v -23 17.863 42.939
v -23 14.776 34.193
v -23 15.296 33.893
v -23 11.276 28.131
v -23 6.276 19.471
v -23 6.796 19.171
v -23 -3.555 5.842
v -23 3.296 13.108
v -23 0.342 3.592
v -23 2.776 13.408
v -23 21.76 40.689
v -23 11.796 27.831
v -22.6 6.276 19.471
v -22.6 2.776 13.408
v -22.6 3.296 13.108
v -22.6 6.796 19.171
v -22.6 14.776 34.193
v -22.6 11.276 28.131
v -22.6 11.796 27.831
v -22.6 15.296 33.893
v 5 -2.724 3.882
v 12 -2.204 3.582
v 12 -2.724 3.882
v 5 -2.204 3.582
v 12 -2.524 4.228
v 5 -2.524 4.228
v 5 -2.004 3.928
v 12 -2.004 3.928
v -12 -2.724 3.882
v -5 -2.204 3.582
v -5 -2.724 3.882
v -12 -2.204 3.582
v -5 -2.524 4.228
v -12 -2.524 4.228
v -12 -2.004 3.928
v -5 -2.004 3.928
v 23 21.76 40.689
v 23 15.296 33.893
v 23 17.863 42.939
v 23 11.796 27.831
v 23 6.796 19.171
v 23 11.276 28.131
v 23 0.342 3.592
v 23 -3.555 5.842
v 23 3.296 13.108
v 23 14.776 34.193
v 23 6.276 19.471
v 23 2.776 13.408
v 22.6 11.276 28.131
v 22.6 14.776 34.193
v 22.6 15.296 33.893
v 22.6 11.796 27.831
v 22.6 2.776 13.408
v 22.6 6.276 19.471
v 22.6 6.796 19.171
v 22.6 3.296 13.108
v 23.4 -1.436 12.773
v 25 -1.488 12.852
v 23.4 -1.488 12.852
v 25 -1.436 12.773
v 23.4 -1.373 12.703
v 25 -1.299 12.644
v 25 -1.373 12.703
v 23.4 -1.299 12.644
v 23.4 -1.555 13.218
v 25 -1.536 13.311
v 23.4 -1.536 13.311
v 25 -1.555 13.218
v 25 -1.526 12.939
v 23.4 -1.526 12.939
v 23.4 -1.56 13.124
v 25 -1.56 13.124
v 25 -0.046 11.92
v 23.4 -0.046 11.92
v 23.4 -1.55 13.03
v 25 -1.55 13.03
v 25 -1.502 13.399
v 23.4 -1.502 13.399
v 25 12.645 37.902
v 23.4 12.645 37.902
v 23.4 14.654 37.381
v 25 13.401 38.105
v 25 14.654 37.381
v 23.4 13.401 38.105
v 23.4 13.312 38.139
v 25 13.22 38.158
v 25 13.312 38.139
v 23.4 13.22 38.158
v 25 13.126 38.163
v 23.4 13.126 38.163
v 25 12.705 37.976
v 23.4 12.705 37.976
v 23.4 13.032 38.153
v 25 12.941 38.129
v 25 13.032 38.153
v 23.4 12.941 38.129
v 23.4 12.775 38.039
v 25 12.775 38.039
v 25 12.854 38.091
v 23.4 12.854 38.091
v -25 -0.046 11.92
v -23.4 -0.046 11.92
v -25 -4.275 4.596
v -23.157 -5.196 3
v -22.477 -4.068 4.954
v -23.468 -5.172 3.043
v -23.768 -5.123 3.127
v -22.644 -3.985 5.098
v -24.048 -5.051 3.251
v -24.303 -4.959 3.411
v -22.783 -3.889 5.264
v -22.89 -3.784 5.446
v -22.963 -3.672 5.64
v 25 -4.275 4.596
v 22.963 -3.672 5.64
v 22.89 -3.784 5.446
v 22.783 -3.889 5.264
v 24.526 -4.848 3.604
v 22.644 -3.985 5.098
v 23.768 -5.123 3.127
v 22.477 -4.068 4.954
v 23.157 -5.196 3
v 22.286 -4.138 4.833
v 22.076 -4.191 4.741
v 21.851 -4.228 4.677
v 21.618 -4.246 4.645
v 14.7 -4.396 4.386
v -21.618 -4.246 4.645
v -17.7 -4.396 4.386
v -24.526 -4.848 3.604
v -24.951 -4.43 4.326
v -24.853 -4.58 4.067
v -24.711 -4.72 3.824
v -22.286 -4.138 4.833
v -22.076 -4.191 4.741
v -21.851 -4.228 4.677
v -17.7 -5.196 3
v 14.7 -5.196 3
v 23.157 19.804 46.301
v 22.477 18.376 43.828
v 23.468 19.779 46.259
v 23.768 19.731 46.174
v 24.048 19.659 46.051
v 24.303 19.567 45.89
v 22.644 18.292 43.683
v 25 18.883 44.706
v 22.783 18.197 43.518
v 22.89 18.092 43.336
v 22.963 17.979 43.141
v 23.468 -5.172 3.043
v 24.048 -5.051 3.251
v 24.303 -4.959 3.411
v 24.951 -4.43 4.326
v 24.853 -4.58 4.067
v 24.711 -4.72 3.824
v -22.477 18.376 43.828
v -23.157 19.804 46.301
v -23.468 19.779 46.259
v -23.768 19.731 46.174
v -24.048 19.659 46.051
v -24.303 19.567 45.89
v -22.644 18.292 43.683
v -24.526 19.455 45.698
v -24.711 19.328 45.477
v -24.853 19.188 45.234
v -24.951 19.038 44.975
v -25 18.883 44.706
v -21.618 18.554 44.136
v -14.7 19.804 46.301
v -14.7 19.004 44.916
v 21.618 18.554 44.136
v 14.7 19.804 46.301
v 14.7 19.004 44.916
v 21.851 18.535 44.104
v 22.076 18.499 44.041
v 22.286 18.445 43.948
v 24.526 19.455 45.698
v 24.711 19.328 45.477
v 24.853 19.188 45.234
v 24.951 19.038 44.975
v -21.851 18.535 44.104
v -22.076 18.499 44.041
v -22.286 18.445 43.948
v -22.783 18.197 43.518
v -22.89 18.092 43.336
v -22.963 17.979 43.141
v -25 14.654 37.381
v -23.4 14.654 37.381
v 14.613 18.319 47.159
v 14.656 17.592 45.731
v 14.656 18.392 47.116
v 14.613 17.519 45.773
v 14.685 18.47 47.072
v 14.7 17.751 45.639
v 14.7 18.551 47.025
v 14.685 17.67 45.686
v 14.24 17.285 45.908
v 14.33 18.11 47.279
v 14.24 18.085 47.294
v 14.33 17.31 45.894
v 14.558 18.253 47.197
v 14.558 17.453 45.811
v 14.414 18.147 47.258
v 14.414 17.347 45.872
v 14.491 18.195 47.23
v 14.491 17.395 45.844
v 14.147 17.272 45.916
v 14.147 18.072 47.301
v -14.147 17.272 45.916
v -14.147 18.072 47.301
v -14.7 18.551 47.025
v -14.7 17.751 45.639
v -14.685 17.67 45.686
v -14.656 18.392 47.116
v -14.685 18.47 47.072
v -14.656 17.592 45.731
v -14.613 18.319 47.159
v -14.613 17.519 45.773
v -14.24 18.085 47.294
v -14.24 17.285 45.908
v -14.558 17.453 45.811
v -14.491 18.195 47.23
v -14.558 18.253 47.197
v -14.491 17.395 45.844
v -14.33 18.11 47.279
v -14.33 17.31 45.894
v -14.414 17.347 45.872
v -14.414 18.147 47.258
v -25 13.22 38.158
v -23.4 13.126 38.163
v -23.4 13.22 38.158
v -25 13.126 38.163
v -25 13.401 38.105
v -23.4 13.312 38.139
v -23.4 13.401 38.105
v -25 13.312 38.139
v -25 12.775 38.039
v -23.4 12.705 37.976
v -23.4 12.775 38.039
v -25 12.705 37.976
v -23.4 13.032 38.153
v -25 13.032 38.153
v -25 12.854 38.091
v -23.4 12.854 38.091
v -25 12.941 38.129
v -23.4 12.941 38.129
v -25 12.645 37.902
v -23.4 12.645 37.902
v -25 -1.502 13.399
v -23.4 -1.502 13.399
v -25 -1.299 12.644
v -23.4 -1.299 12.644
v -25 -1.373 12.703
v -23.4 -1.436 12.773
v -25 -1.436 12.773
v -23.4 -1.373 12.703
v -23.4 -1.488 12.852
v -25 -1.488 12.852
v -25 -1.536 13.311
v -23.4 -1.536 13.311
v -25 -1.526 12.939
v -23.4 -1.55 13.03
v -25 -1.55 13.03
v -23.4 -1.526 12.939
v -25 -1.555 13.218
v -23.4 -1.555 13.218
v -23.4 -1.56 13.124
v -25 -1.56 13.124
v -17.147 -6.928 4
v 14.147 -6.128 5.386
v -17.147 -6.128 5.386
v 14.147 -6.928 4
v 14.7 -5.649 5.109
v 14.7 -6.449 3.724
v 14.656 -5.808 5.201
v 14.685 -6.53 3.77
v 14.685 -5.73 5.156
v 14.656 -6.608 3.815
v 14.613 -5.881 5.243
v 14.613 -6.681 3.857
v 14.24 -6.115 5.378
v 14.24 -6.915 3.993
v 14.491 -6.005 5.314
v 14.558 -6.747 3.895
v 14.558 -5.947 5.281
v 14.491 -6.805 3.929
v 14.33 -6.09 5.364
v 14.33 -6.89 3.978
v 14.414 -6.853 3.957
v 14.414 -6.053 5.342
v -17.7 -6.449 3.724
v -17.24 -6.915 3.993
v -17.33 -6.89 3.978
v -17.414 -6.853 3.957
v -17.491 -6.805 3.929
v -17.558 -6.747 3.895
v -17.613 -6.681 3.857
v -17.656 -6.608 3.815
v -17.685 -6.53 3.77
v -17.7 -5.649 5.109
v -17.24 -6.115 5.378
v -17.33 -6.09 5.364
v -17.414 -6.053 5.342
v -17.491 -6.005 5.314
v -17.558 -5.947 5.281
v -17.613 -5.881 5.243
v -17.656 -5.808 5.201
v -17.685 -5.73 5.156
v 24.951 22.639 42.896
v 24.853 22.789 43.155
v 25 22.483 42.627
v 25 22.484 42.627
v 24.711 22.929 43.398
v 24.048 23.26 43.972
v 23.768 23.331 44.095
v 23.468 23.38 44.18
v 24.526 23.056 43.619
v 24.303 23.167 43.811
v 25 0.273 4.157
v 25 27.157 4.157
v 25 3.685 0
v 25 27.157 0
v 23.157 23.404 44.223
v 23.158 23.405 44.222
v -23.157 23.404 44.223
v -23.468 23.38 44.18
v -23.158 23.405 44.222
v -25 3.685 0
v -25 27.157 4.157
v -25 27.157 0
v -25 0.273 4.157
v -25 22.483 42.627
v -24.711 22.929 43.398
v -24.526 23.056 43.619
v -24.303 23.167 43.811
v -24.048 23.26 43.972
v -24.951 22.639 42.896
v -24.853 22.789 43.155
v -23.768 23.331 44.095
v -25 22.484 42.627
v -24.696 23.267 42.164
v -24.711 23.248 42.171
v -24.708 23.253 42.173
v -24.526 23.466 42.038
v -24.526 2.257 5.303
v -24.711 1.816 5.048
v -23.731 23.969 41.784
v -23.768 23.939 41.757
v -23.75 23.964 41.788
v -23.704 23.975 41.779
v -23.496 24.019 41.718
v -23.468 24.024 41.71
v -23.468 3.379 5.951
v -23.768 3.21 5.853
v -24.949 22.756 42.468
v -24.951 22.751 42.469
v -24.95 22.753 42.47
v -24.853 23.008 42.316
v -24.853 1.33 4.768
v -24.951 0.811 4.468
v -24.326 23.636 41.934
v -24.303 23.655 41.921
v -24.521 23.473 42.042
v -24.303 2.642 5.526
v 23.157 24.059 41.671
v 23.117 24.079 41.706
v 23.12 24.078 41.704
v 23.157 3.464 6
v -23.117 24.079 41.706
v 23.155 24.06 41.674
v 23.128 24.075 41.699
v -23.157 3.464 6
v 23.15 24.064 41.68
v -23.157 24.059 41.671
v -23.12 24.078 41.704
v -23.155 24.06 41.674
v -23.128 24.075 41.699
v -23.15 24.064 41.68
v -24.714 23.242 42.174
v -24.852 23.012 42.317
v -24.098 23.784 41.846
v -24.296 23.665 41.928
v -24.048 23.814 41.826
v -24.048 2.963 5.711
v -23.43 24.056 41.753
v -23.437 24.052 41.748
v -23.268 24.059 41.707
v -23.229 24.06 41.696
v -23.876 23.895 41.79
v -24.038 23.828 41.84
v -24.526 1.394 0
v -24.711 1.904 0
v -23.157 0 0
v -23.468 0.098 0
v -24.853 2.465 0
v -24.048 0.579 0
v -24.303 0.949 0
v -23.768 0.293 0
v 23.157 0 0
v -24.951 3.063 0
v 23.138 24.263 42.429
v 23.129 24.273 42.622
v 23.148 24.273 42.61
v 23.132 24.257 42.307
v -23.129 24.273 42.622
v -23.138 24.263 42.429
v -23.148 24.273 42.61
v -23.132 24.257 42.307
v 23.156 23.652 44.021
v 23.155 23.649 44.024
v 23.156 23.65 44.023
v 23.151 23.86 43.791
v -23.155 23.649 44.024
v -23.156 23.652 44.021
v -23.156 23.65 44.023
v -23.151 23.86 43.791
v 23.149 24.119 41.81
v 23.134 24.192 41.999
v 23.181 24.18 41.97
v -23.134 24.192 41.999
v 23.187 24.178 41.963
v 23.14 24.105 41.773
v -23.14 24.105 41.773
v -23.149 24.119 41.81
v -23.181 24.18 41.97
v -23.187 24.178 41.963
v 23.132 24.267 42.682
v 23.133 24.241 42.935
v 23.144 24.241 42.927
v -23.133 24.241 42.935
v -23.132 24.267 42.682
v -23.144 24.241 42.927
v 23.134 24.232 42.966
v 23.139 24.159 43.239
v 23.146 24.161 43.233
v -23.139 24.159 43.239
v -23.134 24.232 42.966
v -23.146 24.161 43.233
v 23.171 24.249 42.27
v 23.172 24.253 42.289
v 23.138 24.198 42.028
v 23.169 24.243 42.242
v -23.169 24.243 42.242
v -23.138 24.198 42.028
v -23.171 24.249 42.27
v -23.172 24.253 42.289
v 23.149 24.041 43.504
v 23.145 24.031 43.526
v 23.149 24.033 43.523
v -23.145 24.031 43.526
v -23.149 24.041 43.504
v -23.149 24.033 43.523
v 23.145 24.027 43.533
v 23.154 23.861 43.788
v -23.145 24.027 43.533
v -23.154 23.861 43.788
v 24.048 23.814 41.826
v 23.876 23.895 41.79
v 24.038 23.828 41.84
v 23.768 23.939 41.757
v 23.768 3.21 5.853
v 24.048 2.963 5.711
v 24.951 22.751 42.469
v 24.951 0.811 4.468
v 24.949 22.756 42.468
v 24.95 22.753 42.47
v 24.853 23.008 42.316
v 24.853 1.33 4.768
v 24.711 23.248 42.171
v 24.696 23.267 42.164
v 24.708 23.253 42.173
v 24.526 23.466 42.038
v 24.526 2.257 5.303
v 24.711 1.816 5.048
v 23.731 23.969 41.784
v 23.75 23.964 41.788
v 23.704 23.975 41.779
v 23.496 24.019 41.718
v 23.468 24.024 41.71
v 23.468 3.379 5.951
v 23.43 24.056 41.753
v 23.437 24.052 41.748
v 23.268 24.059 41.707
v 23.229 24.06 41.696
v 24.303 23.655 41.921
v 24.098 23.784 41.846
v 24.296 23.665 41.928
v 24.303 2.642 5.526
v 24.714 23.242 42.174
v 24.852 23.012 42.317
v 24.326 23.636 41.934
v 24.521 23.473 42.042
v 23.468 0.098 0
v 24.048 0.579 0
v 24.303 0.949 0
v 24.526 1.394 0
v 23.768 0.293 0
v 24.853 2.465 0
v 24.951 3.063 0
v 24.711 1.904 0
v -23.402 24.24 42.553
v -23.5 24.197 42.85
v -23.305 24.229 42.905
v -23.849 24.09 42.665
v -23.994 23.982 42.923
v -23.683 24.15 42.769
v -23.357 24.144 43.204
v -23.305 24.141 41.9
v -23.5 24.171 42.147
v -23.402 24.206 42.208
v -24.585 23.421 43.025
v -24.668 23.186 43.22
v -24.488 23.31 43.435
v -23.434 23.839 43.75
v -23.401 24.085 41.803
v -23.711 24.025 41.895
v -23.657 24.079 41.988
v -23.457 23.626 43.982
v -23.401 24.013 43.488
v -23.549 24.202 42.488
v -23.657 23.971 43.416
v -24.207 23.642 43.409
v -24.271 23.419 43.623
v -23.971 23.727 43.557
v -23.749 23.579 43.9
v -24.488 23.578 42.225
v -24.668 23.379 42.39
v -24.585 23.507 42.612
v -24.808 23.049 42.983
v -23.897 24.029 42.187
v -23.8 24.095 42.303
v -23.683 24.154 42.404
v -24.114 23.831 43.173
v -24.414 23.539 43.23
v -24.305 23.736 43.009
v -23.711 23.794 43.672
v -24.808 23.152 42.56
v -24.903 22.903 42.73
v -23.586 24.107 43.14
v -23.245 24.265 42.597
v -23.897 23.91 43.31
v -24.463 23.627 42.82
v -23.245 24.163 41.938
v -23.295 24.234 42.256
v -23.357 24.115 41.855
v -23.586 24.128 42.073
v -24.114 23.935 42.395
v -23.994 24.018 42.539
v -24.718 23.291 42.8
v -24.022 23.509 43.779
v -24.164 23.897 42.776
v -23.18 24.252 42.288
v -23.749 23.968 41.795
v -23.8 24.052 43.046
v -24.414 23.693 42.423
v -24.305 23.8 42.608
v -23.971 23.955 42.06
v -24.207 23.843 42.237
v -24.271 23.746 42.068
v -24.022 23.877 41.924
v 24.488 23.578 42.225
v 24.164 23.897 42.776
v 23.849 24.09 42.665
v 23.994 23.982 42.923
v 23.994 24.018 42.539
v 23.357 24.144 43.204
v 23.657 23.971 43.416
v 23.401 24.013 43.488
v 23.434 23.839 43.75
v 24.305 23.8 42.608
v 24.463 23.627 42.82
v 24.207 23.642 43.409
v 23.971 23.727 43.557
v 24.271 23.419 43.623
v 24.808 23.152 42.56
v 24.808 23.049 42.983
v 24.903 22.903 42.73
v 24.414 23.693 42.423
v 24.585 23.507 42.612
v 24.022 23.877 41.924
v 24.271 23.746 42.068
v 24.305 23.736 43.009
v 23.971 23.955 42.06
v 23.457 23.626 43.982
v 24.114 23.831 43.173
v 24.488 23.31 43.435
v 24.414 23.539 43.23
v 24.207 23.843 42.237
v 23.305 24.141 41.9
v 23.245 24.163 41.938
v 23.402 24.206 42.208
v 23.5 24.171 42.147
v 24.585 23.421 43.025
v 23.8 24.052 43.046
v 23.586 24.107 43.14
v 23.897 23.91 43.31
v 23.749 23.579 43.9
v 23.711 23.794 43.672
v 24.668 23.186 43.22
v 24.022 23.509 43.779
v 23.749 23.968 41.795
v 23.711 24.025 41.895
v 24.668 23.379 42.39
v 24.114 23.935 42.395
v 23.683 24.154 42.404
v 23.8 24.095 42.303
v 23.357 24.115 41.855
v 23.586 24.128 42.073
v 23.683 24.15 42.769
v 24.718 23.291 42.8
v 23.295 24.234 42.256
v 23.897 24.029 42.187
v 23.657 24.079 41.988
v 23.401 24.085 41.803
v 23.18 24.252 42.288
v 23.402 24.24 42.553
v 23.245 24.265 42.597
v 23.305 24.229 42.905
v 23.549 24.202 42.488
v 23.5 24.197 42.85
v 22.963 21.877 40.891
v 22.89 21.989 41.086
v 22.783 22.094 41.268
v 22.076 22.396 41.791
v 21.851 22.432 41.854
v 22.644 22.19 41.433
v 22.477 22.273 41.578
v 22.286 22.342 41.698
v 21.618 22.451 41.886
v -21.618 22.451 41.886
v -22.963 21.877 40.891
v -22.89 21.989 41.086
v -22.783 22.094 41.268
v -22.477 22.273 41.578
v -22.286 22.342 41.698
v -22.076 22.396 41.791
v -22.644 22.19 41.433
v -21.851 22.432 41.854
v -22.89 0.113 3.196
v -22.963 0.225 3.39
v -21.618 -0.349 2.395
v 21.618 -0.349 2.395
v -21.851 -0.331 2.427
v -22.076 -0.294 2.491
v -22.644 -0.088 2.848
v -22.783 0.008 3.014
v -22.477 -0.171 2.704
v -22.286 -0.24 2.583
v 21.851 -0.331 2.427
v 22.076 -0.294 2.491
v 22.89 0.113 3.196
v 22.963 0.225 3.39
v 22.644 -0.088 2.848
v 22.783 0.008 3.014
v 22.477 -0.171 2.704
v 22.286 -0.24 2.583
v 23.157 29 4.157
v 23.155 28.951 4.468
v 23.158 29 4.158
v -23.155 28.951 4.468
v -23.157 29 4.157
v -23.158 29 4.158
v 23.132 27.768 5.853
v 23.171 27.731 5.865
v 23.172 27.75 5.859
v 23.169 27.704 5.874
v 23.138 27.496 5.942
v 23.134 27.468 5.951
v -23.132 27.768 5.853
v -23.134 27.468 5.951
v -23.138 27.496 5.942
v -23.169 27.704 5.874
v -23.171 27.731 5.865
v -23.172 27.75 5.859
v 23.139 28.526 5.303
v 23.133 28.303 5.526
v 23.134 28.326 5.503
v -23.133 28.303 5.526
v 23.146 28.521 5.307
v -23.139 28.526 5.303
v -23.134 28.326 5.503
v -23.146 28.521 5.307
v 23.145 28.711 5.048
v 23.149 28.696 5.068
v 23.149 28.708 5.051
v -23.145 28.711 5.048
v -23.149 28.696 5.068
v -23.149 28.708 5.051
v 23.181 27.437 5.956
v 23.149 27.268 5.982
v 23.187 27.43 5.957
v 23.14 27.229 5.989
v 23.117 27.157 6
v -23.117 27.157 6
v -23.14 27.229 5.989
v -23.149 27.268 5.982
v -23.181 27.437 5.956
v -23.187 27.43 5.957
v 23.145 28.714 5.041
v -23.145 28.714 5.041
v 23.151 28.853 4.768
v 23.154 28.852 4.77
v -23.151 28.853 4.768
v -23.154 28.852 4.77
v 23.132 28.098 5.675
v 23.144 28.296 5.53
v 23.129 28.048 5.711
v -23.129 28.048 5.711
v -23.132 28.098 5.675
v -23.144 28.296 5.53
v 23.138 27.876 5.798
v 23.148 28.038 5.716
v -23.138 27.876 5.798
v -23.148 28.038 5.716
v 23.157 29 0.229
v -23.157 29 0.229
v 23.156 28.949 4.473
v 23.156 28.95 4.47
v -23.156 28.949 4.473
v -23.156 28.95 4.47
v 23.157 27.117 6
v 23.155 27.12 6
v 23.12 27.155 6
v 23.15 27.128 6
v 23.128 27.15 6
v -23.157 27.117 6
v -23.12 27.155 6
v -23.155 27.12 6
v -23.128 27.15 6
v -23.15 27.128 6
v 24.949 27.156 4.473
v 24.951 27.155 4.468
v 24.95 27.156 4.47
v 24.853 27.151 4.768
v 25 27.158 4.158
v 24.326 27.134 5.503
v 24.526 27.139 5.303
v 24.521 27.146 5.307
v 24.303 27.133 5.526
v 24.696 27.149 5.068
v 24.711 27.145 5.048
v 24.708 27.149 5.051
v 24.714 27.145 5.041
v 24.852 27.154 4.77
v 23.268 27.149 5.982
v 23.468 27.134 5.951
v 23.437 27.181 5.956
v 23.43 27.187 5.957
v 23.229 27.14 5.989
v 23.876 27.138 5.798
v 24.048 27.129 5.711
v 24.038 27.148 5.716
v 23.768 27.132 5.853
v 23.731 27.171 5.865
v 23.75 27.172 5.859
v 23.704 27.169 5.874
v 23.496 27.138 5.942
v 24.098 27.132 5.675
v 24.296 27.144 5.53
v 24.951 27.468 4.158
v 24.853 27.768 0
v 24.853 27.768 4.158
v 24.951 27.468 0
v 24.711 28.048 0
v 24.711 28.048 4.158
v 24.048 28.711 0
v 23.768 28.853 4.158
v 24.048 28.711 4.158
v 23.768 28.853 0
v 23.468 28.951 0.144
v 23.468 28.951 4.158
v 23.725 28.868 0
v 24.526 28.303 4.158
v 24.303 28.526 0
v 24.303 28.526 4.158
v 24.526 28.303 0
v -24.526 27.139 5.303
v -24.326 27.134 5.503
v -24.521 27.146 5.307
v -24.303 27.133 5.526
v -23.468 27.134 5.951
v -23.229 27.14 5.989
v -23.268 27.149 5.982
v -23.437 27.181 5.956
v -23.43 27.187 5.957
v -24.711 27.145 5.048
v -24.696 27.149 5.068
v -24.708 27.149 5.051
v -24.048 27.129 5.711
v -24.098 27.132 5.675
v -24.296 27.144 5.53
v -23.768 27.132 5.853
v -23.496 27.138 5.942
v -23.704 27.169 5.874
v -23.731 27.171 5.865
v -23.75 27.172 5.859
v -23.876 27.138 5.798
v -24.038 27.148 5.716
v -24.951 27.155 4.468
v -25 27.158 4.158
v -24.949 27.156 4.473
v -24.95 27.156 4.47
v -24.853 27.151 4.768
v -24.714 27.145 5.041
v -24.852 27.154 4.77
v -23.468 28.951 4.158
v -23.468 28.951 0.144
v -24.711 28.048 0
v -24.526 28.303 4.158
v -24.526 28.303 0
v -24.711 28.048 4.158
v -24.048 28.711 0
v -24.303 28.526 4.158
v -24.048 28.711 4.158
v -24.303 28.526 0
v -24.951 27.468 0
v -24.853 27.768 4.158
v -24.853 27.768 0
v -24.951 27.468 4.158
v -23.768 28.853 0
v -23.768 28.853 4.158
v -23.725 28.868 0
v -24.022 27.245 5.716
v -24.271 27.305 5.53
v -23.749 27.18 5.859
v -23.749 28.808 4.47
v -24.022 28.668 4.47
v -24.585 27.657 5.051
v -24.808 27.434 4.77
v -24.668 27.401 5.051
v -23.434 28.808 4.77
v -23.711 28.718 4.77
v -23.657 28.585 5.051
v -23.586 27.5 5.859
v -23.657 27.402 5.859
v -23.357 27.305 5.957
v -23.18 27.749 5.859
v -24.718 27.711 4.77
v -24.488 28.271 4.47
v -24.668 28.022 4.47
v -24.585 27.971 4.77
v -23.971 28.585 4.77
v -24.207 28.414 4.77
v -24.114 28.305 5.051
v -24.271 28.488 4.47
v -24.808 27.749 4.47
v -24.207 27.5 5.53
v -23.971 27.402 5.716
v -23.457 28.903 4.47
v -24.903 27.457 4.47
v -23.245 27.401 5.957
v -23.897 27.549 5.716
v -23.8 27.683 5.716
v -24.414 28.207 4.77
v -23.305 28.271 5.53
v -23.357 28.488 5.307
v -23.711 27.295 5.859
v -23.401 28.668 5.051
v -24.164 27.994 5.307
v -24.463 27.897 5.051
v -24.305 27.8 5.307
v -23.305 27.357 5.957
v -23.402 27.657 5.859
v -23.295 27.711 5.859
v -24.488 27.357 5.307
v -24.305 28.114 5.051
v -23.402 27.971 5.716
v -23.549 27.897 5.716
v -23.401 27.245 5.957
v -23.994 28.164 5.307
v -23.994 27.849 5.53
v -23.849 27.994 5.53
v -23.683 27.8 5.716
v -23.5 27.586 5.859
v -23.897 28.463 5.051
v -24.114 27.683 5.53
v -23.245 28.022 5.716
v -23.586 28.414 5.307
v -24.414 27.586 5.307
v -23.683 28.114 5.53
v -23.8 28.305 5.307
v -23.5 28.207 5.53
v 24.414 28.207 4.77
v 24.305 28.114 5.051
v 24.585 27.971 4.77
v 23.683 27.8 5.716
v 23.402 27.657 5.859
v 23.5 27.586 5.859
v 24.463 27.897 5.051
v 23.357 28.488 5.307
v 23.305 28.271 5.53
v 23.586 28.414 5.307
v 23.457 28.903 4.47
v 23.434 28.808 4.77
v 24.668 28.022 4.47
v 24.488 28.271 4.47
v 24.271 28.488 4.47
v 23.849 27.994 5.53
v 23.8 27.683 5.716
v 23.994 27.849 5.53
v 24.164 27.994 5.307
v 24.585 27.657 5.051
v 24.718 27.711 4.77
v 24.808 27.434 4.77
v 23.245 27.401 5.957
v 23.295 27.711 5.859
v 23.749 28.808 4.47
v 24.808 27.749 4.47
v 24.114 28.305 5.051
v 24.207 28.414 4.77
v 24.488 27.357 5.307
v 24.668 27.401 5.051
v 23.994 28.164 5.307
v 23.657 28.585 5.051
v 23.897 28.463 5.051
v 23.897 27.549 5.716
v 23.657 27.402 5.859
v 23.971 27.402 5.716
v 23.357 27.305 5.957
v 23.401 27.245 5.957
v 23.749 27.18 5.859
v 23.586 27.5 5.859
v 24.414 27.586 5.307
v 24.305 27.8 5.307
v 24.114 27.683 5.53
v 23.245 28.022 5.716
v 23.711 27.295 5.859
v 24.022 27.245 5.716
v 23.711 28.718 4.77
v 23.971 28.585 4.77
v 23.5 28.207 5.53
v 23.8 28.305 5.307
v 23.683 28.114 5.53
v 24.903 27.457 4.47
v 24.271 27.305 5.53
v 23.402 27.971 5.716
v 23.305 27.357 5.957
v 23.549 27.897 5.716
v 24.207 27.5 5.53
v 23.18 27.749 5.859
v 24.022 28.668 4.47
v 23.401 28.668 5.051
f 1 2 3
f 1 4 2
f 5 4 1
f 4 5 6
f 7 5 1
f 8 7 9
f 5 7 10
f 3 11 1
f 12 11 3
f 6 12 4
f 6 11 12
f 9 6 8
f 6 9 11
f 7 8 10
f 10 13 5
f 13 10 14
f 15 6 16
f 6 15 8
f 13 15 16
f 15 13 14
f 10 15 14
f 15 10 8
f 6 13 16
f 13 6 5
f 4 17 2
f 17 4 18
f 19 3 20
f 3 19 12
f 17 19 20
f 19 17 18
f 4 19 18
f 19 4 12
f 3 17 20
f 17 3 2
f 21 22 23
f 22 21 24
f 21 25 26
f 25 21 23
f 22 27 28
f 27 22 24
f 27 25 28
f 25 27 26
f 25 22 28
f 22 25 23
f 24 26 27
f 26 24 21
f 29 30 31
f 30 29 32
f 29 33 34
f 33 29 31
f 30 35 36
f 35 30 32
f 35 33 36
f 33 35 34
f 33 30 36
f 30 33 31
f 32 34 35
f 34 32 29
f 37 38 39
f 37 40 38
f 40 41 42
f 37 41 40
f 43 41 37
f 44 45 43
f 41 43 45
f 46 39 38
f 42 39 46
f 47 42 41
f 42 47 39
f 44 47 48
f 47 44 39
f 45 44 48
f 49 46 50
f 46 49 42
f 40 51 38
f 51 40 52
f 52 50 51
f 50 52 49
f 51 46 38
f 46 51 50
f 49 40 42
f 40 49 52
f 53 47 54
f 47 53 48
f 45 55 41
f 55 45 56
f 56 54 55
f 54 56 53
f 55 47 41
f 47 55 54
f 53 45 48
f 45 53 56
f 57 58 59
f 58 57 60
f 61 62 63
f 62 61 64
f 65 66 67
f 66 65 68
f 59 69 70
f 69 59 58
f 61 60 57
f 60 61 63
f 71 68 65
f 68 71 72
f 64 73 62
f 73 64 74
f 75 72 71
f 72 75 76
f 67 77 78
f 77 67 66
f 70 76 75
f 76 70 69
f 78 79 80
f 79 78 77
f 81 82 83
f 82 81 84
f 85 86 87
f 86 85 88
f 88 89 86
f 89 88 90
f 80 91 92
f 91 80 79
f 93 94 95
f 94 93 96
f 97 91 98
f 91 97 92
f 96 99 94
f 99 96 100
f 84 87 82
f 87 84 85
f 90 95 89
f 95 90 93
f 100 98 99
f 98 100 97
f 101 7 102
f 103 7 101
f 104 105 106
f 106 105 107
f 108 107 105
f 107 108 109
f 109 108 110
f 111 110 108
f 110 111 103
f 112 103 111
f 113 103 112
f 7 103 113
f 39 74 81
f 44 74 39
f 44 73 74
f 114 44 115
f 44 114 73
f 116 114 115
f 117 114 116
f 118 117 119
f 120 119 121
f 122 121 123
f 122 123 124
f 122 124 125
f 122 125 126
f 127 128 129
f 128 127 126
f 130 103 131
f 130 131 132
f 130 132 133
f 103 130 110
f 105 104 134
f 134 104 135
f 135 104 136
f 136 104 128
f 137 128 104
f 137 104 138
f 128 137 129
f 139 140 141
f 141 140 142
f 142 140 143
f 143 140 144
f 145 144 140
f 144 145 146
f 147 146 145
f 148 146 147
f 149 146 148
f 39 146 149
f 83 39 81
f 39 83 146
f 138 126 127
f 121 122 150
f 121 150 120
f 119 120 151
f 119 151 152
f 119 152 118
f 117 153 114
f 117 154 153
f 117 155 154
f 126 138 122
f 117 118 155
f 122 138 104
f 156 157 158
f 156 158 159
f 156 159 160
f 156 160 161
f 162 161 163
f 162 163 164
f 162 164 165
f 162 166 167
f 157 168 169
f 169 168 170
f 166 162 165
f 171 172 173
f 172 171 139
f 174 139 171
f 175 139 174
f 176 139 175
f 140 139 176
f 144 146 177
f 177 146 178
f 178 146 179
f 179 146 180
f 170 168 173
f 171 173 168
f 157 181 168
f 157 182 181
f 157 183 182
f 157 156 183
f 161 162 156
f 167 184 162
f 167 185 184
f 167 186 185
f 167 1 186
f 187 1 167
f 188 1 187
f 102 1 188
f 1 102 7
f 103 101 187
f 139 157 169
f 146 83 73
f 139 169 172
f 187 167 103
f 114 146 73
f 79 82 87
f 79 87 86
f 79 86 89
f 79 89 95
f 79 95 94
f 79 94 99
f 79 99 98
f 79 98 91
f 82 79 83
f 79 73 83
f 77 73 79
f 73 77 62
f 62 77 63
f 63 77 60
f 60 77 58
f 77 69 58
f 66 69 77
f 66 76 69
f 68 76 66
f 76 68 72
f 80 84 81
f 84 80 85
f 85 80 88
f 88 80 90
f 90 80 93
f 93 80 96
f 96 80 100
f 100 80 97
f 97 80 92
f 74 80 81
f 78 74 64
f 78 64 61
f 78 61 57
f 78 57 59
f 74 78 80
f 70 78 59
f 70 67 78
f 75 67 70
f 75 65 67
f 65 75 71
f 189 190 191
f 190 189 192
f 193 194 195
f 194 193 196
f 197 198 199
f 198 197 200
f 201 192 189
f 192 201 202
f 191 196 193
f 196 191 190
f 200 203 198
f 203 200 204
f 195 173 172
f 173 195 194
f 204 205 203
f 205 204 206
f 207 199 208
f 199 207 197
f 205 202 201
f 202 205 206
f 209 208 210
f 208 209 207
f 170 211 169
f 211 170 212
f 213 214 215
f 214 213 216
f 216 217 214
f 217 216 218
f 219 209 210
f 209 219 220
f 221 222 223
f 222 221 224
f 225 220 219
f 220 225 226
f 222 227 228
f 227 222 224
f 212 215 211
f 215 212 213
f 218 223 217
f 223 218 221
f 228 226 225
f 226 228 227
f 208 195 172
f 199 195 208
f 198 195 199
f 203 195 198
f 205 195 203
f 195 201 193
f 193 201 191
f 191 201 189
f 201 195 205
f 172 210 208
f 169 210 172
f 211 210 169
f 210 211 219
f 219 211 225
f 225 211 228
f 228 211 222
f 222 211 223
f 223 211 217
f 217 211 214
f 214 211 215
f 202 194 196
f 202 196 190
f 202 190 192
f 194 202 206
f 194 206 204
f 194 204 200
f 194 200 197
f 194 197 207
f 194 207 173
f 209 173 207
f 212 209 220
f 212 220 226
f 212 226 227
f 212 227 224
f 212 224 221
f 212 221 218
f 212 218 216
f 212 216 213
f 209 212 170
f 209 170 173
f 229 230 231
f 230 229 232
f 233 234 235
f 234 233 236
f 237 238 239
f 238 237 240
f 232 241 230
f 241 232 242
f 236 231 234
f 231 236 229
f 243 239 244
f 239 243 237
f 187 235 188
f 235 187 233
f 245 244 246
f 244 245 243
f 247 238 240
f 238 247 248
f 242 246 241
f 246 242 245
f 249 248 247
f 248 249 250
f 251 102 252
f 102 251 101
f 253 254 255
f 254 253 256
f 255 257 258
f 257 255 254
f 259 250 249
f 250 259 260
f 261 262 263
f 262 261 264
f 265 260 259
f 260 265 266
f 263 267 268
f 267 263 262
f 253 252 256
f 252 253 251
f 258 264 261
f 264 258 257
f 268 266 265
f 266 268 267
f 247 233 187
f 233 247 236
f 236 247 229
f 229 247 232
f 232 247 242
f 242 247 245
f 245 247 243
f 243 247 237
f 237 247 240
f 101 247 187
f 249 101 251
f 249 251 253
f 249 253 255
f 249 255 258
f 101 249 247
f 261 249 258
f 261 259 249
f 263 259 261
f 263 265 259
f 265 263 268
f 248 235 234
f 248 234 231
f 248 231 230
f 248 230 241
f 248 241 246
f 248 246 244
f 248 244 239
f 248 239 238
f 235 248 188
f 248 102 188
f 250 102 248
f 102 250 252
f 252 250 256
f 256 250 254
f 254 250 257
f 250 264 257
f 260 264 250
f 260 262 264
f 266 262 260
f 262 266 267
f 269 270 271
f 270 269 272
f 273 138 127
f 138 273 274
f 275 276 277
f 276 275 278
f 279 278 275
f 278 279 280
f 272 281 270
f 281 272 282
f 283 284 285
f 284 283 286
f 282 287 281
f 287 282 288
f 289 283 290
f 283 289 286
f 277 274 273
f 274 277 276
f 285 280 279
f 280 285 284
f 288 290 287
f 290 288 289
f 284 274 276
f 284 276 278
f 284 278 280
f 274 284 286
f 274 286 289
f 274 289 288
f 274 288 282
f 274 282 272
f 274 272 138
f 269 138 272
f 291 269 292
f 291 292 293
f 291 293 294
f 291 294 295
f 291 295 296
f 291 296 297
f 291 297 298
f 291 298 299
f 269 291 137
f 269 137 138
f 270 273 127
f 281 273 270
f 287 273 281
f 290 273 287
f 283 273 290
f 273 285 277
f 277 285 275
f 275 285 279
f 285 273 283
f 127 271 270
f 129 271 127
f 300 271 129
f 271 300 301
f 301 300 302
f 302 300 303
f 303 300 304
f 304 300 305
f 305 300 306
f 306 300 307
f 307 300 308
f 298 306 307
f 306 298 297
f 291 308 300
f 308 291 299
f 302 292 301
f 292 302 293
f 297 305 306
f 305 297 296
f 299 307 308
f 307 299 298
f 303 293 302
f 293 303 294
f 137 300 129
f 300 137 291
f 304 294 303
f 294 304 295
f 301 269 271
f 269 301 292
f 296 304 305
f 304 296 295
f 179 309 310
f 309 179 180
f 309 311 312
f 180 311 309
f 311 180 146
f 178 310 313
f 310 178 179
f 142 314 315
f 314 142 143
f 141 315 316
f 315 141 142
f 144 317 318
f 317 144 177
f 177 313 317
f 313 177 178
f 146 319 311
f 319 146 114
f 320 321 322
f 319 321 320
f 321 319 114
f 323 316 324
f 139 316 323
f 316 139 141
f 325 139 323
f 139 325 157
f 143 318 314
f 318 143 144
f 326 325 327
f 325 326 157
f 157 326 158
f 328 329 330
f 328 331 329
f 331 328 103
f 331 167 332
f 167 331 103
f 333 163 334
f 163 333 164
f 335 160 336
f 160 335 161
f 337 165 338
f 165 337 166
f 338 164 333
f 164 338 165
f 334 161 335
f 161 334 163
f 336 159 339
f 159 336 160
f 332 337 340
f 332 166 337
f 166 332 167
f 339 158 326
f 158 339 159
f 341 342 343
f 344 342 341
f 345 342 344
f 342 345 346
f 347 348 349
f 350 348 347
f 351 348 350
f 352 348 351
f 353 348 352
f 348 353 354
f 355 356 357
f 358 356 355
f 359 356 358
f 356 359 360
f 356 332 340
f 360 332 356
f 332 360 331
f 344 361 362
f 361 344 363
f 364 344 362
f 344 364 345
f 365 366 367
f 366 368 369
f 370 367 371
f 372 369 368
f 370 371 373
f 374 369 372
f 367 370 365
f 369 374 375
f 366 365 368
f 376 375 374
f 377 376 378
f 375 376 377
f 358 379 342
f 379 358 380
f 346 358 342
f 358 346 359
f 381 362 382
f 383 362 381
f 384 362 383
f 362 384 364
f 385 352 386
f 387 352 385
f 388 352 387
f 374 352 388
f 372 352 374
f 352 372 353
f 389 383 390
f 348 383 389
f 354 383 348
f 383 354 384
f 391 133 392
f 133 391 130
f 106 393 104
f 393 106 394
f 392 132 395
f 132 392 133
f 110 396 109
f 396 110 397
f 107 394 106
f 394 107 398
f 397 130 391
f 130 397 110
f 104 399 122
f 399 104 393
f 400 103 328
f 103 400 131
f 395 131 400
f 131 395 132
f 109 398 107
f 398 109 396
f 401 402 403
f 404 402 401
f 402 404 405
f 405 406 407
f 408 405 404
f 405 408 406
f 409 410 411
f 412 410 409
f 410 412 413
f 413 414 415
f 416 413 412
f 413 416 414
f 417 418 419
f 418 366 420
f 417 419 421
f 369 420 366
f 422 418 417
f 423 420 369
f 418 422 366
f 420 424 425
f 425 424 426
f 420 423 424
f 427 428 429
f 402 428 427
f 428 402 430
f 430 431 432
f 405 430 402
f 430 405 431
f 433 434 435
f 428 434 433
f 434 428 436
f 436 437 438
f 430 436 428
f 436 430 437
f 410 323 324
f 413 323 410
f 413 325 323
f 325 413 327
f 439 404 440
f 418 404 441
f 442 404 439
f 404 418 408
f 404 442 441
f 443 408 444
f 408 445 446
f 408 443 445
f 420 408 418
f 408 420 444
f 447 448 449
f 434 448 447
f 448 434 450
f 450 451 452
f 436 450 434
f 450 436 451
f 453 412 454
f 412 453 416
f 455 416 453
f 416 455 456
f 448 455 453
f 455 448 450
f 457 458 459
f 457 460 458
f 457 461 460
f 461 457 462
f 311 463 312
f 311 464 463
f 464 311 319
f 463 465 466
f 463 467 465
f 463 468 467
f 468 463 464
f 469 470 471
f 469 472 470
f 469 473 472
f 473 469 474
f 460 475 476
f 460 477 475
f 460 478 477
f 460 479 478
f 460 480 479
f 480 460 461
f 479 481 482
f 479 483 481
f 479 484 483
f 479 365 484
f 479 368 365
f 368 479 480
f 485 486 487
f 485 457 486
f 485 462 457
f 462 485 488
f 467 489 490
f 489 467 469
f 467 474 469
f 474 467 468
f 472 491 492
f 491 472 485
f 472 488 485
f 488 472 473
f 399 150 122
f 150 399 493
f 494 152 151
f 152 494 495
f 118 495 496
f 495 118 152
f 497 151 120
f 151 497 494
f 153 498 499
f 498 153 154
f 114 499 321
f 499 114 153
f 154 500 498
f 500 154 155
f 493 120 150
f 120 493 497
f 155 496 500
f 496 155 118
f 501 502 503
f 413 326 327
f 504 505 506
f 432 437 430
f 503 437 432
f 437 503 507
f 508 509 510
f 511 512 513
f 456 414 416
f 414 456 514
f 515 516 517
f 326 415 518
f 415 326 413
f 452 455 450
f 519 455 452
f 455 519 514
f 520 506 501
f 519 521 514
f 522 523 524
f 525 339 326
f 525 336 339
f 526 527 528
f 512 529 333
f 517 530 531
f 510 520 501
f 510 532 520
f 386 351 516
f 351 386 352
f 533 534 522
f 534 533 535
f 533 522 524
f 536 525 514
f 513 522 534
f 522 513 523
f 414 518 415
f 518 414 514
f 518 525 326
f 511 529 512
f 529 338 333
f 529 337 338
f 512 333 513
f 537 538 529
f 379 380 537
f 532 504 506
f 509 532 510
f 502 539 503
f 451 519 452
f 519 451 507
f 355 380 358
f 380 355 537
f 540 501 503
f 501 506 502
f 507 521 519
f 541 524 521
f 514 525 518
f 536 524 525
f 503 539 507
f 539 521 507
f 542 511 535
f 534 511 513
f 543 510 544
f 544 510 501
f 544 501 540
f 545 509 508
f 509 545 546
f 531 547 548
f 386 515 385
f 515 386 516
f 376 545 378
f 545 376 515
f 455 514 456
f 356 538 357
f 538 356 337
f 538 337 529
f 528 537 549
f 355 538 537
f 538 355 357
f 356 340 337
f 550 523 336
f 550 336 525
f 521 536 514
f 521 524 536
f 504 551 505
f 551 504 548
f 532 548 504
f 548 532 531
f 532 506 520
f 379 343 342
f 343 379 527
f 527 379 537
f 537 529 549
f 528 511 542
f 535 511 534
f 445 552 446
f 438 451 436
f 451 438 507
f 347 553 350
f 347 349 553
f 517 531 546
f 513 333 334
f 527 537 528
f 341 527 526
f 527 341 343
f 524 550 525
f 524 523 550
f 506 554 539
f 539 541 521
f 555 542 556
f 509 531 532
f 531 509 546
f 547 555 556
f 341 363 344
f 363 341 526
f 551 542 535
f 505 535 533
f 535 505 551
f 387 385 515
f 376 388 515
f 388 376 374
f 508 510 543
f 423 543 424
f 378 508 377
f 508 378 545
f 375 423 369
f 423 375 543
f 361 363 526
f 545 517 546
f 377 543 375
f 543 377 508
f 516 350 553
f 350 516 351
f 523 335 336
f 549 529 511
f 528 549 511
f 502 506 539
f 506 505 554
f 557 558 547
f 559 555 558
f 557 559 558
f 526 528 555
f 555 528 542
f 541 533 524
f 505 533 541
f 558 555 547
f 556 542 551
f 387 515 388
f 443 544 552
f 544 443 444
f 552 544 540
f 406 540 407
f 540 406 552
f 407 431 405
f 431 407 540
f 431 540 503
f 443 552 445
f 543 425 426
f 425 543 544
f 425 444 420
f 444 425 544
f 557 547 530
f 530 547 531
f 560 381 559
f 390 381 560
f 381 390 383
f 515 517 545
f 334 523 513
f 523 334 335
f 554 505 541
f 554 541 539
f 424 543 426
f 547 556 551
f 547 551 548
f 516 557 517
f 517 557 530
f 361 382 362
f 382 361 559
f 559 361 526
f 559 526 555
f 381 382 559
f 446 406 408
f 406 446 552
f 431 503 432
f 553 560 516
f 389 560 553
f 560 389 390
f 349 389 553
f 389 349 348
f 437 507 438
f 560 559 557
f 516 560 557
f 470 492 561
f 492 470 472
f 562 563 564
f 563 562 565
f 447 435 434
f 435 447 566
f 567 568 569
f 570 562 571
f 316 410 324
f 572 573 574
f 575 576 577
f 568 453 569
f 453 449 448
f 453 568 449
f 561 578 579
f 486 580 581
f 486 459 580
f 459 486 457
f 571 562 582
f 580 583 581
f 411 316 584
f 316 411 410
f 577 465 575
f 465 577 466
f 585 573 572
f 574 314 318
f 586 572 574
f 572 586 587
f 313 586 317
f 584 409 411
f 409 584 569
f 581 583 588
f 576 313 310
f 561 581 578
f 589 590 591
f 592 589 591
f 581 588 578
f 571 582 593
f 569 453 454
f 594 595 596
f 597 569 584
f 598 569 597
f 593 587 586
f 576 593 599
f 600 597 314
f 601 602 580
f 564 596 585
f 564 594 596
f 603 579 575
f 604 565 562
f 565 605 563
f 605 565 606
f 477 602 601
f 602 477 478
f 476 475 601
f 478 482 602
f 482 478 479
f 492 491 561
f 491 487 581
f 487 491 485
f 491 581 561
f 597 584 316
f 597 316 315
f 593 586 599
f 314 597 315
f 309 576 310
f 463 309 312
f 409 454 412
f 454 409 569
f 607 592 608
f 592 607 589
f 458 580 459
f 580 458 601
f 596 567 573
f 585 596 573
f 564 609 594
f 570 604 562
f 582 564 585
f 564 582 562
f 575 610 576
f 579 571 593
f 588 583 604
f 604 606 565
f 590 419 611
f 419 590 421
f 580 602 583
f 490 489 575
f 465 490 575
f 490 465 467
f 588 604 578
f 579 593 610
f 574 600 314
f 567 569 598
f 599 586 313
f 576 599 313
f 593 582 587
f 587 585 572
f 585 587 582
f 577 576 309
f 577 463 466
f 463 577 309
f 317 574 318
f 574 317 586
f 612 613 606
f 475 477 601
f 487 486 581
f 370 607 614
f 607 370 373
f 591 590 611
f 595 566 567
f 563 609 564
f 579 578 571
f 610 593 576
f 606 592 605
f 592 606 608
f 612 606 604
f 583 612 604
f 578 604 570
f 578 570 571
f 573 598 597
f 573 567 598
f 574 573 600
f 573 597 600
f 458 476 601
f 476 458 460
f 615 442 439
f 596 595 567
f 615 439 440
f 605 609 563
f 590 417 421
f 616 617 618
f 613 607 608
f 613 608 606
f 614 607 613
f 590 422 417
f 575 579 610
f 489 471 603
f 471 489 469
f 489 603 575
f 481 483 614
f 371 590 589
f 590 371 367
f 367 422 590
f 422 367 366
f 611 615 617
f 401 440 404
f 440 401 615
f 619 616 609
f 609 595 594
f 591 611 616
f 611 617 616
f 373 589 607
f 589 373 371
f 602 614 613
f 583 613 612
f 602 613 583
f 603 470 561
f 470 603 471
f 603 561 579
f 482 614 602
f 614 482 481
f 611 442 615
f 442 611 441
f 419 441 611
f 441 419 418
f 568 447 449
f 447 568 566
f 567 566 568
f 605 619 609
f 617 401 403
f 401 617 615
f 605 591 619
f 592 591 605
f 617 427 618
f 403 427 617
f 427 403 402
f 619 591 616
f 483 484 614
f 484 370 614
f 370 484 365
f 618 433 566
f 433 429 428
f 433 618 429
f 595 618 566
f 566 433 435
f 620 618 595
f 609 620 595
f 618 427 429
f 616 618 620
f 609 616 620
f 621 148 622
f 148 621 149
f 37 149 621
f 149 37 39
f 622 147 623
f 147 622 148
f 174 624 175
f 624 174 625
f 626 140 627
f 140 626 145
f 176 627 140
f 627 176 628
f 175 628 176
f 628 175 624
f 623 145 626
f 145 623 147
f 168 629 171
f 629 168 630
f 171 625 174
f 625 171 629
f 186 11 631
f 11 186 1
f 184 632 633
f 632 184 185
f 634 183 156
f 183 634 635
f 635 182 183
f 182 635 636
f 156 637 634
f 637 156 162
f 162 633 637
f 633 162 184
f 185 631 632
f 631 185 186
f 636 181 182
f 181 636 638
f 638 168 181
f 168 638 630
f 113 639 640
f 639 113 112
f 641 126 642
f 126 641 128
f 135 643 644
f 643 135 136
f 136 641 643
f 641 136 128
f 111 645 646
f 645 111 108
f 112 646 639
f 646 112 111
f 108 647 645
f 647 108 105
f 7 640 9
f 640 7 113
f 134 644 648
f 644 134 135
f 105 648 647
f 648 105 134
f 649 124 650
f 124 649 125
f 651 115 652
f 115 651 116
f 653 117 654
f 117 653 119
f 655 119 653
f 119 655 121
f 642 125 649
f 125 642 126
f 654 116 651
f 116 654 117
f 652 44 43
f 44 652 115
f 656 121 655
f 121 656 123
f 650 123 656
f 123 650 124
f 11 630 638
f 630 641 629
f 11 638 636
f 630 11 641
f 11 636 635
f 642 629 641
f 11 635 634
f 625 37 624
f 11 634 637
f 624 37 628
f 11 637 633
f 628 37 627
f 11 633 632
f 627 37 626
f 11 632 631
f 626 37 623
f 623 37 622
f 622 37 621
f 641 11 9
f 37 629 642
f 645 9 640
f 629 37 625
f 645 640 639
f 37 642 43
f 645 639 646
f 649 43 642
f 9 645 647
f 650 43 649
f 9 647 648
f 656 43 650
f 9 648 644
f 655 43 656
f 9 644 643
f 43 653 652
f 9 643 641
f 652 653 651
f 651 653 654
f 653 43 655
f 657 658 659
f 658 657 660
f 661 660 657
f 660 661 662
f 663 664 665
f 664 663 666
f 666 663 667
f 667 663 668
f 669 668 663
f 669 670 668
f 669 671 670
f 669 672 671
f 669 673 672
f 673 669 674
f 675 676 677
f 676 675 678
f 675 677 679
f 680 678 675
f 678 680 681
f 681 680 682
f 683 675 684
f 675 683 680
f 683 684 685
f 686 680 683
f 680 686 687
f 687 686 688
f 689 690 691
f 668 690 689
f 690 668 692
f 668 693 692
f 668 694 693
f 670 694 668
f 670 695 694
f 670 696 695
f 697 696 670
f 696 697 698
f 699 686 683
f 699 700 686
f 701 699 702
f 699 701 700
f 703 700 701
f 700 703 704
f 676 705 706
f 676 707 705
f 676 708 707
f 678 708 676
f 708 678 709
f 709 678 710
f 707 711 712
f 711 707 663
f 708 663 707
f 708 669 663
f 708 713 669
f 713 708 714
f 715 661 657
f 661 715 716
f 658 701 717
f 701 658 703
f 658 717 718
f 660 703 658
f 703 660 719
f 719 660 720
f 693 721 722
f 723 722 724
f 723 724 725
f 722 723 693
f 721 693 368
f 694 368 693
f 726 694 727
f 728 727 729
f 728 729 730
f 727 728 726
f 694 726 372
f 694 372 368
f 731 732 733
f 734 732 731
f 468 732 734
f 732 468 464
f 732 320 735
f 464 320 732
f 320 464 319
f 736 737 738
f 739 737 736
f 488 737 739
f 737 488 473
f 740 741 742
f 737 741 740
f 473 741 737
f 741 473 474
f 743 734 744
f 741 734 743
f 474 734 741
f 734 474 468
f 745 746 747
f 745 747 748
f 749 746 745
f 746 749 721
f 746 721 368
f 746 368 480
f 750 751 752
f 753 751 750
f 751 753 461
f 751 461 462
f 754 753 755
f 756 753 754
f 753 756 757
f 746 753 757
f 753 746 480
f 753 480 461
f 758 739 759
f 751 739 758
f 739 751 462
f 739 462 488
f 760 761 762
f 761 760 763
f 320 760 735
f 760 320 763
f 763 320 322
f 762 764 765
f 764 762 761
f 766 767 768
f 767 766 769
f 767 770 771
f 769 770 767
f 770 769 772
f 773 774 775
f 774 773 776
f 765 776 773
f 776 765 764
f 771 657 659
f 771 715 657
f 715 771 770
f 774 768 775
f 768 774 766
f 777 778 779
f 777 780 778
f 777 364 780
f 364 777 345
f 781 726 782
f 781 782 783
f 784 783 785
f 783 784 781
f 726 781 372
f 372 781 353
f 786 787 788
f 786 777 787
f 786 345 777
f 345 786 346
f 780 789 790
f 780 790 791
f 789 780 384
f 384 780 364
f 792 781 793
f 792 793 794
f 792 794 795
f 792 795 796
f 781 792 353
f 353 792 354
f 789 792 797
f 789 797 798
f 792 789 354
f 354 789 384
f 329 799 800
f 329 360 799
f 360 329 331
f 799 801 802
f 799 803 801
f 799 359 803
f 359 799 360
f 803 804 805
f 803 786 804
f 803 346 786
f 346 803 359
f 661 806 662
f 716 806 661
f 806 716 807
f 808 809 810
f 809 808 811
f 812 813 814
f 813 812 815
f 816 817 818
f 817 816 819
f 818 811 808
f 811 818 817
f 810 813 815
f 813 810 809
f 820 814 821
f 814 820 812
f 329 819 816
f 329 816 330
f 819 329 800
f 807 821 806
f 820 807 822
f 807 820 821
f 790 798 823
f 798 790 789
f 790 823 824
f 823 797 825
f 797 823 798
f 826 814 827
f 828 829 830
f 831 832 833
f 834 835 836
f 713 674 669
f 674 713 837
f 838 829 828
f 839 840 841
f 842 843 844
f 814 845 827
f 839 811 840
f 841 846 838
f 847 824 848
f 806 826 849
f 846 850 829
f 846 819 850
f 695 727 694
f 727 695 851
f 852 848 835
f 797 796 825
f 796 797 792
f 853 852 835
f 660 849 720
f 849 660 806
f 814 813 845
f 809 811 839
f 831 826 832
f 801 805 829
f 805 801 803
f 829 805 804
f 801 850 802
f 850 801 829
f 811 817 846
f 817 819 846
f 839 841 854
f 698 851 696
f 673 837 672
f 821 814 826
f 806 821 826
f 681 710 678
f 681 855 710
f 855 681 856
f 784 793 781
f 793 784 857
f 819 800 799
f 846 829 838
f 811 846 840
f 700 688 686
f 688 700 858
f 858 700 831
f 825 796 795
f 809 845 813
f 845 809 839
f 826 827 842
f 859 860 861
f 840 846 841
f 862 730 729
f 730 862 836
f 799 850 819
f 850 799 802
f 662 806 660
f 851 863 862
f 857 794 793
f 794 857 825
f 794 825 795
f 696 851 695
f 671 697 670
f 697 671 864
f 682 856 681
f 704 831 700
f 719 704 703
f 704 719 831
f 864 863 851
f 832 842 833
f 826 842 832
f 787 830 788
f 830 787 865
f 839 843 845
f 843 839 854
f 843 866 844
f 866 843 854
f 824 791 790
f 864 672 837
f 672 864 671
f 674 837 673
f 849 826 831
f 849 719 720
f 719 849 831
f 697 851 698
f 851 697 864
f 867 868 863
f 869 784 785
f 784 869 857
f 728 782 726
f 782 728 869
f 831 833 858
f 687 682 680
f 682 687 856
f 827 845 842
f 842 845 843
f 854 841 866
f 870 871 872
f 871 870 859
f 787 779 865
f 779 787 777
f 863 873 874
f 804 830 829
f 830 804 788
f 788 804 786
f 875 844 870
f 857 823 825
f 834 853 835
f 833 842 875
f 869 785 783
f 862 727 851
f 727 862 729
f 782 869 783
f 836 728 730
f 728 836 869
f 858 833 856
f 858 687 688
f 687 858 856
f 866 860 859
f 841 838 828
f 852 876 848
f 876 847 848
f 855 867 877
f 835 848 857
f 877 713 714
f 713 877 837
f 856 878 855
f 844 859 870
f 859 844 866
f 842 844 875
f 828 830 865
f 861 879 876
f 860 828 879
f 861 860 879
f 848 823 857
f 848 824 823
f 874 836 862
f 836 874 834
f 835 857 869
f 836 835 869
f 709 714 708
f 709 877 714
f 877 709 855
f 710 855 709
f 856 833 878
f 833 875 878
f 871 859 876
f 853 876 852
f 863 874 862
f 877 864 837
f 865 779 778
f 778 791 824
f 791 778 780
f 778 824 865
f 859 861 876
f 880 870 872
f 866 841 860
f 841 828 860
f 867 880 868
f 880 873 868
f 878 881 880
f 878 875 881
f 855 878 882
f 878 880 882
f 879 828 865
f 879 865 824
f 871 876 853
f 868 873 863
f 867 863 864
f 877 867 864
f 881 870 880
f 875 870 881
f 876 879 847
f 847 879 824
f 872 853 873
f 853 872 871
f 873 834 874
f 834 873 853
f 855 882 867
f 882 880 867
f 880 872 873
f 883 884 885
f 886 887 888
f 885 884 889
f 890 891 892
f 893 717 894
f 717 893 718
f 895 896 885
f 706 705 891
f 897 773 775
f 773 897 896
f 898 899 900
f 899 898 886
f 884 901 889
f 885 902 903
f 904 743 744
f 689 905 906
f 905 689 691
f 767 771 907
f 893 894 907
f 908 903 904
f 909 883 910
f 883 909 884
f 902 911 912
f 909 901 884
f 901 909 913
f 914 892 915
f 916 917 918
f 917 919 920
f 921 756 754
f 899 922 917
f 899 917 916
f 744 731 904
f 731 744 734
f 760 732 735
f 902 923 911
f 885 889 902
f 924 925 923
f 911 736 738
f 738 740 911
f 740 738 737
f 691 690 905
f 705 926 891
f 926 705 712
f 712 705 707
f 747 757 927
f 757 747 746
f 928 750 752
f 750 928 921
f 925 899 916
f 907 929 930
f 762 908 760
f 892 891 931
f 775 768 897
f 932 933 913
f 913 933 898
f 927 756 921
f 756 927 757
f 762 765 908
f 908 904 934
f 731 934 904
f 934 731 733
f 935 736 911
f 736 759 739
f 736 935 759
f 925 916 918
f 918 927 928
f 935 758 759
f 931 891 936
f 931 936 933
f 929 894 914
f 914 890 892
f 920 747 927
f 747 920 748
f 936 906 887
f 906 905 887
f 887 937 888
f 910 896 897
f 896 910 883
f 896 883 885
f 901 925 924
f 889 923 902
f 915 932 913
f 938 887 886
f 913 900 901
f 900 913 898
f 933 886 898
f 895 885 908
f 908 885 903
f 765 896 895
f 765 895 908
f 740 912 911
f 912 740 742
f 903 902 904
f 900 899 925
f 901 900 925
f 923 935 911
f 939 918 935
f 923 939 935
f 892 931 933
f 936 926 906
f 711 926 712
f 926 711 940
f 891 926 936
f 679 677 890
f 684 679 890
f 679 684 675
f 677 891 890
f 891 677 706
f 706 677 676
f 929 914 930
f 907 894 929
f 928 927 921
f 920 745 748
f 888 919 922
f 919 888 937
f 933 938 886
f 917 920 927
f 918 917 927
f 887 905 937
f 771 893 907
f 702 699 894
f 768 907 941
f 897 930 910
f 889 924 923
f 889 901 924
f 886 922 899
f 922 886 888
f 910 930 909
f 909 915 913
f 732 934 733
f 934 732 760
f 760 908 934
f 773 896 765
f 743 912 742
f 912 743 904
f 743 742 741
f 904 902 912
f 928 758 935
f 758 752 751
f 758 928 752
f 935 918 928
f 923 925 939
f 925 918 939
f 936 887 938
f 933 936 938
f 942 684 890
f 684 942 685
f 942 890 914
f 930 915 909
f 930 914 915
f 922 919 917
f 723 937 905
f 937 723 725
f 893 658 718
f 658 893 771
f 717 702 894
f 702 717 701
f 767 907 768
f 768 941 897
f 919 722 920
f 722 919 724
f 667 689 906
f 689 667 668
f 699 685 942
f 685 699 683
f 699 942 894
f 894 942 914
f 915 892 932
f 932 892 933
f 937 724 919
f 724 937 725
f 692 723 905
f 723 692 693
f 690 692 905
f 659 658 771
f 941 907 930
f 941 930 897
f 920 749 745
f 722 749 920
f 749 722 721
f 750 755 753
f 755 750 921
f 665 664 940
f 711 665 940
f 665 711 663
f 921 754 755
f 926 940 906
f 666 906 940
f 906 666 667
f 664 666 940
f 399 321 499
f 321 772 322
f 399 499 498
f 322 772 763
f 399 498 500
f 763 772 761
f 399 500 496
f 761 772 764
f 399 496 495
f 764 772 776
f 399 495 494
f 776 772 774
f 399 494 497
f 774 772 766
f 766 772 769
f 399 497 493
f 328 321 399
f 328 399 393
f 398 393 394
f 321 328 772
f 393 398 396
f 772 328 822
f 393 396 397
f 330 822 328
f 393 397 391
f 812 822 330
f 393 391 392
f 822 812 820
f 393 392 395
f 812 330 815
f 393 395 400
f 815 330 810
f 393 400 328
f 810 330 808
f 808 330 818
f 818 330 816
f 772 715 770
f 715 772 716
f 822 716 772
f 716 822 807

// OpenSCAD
include <BOSL/constants.scad>
use <BOSL/shapes.scad>

$fn=40;
r=2;
a=50;
a_inner=46;
h=6;
h_inner=5;
b_stand=30;
lock_w=.4;

module mass() {
    difference() {
        cuboid([a,a,h], fillet=r, edges=EDGES_Z_ALL+EDGES_Y_BOT+EDGE_BOT_BK);
        translate([0,-lock_w+0.1,1]) 
            cuboid([a_inner,a_inner-lock_w,h_inner], fillet=r-.5, edges=EDGES_Z_ALL);
    }
}

module single_lock() {
    color("red") translate([a_inner/2-lock_w/2, 0, 1]) cube([lock_w,7,.6], center=true);
}

module double_lock() {
    translate([0,8.5,0]) single_lock();
    translate([0,-8.5,0]) single_lock();
}

module single_border_deco() {
    bh=2;
    bw=1.6;
    br=0.6;
    bl=29.4;
    
    color("red") translate([0, a/2-bw/2, h/2+bh/2])
    cuboid([bl,bw,bh], fillet=br,edges=EDGES_Y_TOP);
}

module single_border_ext() {
    union() {
        single_border_deco();
        translate([3,0,0]) single_border_deco();
    }
}
    

module container() {
    // locks
    for(rz=[180:90:360]) {
        rotate([0,0,rz]) double_lock();
    }
    
    // border decorations
    for(rz=[-90:90:90]) {
        rotate([0,0,rz]) single_border_deco();
    }
    rotate([0,0,180]) single_border_ext();
    
    // main mass
    mass();
}

module leg() {
    intersection () {
         difference() {
            translate([0,b_stand/2-1,h/2]) 
                color("blue") cuboid([a,b_stand,h], fillet=r, edges=EDGES_TOP+EDGES_Z_BK);
            rotate([60,0,0]) translate([0,a/2-lock_w,h/2]) 
                cuboid([a_inner,a_inner-lock_w,h_inner], fillet=r-.5, edges
=EDGES_Z_ALL);
         }
         rotate([60,0,0]) translate([0,a/2,0]) 
                cuboid([a,a,a], fillet=r, edges=EDGES_Z_ALL);
        
    }
}

rotate([60,0,0]) translate([0,a/2,h/2]) 
    container();
leg();
